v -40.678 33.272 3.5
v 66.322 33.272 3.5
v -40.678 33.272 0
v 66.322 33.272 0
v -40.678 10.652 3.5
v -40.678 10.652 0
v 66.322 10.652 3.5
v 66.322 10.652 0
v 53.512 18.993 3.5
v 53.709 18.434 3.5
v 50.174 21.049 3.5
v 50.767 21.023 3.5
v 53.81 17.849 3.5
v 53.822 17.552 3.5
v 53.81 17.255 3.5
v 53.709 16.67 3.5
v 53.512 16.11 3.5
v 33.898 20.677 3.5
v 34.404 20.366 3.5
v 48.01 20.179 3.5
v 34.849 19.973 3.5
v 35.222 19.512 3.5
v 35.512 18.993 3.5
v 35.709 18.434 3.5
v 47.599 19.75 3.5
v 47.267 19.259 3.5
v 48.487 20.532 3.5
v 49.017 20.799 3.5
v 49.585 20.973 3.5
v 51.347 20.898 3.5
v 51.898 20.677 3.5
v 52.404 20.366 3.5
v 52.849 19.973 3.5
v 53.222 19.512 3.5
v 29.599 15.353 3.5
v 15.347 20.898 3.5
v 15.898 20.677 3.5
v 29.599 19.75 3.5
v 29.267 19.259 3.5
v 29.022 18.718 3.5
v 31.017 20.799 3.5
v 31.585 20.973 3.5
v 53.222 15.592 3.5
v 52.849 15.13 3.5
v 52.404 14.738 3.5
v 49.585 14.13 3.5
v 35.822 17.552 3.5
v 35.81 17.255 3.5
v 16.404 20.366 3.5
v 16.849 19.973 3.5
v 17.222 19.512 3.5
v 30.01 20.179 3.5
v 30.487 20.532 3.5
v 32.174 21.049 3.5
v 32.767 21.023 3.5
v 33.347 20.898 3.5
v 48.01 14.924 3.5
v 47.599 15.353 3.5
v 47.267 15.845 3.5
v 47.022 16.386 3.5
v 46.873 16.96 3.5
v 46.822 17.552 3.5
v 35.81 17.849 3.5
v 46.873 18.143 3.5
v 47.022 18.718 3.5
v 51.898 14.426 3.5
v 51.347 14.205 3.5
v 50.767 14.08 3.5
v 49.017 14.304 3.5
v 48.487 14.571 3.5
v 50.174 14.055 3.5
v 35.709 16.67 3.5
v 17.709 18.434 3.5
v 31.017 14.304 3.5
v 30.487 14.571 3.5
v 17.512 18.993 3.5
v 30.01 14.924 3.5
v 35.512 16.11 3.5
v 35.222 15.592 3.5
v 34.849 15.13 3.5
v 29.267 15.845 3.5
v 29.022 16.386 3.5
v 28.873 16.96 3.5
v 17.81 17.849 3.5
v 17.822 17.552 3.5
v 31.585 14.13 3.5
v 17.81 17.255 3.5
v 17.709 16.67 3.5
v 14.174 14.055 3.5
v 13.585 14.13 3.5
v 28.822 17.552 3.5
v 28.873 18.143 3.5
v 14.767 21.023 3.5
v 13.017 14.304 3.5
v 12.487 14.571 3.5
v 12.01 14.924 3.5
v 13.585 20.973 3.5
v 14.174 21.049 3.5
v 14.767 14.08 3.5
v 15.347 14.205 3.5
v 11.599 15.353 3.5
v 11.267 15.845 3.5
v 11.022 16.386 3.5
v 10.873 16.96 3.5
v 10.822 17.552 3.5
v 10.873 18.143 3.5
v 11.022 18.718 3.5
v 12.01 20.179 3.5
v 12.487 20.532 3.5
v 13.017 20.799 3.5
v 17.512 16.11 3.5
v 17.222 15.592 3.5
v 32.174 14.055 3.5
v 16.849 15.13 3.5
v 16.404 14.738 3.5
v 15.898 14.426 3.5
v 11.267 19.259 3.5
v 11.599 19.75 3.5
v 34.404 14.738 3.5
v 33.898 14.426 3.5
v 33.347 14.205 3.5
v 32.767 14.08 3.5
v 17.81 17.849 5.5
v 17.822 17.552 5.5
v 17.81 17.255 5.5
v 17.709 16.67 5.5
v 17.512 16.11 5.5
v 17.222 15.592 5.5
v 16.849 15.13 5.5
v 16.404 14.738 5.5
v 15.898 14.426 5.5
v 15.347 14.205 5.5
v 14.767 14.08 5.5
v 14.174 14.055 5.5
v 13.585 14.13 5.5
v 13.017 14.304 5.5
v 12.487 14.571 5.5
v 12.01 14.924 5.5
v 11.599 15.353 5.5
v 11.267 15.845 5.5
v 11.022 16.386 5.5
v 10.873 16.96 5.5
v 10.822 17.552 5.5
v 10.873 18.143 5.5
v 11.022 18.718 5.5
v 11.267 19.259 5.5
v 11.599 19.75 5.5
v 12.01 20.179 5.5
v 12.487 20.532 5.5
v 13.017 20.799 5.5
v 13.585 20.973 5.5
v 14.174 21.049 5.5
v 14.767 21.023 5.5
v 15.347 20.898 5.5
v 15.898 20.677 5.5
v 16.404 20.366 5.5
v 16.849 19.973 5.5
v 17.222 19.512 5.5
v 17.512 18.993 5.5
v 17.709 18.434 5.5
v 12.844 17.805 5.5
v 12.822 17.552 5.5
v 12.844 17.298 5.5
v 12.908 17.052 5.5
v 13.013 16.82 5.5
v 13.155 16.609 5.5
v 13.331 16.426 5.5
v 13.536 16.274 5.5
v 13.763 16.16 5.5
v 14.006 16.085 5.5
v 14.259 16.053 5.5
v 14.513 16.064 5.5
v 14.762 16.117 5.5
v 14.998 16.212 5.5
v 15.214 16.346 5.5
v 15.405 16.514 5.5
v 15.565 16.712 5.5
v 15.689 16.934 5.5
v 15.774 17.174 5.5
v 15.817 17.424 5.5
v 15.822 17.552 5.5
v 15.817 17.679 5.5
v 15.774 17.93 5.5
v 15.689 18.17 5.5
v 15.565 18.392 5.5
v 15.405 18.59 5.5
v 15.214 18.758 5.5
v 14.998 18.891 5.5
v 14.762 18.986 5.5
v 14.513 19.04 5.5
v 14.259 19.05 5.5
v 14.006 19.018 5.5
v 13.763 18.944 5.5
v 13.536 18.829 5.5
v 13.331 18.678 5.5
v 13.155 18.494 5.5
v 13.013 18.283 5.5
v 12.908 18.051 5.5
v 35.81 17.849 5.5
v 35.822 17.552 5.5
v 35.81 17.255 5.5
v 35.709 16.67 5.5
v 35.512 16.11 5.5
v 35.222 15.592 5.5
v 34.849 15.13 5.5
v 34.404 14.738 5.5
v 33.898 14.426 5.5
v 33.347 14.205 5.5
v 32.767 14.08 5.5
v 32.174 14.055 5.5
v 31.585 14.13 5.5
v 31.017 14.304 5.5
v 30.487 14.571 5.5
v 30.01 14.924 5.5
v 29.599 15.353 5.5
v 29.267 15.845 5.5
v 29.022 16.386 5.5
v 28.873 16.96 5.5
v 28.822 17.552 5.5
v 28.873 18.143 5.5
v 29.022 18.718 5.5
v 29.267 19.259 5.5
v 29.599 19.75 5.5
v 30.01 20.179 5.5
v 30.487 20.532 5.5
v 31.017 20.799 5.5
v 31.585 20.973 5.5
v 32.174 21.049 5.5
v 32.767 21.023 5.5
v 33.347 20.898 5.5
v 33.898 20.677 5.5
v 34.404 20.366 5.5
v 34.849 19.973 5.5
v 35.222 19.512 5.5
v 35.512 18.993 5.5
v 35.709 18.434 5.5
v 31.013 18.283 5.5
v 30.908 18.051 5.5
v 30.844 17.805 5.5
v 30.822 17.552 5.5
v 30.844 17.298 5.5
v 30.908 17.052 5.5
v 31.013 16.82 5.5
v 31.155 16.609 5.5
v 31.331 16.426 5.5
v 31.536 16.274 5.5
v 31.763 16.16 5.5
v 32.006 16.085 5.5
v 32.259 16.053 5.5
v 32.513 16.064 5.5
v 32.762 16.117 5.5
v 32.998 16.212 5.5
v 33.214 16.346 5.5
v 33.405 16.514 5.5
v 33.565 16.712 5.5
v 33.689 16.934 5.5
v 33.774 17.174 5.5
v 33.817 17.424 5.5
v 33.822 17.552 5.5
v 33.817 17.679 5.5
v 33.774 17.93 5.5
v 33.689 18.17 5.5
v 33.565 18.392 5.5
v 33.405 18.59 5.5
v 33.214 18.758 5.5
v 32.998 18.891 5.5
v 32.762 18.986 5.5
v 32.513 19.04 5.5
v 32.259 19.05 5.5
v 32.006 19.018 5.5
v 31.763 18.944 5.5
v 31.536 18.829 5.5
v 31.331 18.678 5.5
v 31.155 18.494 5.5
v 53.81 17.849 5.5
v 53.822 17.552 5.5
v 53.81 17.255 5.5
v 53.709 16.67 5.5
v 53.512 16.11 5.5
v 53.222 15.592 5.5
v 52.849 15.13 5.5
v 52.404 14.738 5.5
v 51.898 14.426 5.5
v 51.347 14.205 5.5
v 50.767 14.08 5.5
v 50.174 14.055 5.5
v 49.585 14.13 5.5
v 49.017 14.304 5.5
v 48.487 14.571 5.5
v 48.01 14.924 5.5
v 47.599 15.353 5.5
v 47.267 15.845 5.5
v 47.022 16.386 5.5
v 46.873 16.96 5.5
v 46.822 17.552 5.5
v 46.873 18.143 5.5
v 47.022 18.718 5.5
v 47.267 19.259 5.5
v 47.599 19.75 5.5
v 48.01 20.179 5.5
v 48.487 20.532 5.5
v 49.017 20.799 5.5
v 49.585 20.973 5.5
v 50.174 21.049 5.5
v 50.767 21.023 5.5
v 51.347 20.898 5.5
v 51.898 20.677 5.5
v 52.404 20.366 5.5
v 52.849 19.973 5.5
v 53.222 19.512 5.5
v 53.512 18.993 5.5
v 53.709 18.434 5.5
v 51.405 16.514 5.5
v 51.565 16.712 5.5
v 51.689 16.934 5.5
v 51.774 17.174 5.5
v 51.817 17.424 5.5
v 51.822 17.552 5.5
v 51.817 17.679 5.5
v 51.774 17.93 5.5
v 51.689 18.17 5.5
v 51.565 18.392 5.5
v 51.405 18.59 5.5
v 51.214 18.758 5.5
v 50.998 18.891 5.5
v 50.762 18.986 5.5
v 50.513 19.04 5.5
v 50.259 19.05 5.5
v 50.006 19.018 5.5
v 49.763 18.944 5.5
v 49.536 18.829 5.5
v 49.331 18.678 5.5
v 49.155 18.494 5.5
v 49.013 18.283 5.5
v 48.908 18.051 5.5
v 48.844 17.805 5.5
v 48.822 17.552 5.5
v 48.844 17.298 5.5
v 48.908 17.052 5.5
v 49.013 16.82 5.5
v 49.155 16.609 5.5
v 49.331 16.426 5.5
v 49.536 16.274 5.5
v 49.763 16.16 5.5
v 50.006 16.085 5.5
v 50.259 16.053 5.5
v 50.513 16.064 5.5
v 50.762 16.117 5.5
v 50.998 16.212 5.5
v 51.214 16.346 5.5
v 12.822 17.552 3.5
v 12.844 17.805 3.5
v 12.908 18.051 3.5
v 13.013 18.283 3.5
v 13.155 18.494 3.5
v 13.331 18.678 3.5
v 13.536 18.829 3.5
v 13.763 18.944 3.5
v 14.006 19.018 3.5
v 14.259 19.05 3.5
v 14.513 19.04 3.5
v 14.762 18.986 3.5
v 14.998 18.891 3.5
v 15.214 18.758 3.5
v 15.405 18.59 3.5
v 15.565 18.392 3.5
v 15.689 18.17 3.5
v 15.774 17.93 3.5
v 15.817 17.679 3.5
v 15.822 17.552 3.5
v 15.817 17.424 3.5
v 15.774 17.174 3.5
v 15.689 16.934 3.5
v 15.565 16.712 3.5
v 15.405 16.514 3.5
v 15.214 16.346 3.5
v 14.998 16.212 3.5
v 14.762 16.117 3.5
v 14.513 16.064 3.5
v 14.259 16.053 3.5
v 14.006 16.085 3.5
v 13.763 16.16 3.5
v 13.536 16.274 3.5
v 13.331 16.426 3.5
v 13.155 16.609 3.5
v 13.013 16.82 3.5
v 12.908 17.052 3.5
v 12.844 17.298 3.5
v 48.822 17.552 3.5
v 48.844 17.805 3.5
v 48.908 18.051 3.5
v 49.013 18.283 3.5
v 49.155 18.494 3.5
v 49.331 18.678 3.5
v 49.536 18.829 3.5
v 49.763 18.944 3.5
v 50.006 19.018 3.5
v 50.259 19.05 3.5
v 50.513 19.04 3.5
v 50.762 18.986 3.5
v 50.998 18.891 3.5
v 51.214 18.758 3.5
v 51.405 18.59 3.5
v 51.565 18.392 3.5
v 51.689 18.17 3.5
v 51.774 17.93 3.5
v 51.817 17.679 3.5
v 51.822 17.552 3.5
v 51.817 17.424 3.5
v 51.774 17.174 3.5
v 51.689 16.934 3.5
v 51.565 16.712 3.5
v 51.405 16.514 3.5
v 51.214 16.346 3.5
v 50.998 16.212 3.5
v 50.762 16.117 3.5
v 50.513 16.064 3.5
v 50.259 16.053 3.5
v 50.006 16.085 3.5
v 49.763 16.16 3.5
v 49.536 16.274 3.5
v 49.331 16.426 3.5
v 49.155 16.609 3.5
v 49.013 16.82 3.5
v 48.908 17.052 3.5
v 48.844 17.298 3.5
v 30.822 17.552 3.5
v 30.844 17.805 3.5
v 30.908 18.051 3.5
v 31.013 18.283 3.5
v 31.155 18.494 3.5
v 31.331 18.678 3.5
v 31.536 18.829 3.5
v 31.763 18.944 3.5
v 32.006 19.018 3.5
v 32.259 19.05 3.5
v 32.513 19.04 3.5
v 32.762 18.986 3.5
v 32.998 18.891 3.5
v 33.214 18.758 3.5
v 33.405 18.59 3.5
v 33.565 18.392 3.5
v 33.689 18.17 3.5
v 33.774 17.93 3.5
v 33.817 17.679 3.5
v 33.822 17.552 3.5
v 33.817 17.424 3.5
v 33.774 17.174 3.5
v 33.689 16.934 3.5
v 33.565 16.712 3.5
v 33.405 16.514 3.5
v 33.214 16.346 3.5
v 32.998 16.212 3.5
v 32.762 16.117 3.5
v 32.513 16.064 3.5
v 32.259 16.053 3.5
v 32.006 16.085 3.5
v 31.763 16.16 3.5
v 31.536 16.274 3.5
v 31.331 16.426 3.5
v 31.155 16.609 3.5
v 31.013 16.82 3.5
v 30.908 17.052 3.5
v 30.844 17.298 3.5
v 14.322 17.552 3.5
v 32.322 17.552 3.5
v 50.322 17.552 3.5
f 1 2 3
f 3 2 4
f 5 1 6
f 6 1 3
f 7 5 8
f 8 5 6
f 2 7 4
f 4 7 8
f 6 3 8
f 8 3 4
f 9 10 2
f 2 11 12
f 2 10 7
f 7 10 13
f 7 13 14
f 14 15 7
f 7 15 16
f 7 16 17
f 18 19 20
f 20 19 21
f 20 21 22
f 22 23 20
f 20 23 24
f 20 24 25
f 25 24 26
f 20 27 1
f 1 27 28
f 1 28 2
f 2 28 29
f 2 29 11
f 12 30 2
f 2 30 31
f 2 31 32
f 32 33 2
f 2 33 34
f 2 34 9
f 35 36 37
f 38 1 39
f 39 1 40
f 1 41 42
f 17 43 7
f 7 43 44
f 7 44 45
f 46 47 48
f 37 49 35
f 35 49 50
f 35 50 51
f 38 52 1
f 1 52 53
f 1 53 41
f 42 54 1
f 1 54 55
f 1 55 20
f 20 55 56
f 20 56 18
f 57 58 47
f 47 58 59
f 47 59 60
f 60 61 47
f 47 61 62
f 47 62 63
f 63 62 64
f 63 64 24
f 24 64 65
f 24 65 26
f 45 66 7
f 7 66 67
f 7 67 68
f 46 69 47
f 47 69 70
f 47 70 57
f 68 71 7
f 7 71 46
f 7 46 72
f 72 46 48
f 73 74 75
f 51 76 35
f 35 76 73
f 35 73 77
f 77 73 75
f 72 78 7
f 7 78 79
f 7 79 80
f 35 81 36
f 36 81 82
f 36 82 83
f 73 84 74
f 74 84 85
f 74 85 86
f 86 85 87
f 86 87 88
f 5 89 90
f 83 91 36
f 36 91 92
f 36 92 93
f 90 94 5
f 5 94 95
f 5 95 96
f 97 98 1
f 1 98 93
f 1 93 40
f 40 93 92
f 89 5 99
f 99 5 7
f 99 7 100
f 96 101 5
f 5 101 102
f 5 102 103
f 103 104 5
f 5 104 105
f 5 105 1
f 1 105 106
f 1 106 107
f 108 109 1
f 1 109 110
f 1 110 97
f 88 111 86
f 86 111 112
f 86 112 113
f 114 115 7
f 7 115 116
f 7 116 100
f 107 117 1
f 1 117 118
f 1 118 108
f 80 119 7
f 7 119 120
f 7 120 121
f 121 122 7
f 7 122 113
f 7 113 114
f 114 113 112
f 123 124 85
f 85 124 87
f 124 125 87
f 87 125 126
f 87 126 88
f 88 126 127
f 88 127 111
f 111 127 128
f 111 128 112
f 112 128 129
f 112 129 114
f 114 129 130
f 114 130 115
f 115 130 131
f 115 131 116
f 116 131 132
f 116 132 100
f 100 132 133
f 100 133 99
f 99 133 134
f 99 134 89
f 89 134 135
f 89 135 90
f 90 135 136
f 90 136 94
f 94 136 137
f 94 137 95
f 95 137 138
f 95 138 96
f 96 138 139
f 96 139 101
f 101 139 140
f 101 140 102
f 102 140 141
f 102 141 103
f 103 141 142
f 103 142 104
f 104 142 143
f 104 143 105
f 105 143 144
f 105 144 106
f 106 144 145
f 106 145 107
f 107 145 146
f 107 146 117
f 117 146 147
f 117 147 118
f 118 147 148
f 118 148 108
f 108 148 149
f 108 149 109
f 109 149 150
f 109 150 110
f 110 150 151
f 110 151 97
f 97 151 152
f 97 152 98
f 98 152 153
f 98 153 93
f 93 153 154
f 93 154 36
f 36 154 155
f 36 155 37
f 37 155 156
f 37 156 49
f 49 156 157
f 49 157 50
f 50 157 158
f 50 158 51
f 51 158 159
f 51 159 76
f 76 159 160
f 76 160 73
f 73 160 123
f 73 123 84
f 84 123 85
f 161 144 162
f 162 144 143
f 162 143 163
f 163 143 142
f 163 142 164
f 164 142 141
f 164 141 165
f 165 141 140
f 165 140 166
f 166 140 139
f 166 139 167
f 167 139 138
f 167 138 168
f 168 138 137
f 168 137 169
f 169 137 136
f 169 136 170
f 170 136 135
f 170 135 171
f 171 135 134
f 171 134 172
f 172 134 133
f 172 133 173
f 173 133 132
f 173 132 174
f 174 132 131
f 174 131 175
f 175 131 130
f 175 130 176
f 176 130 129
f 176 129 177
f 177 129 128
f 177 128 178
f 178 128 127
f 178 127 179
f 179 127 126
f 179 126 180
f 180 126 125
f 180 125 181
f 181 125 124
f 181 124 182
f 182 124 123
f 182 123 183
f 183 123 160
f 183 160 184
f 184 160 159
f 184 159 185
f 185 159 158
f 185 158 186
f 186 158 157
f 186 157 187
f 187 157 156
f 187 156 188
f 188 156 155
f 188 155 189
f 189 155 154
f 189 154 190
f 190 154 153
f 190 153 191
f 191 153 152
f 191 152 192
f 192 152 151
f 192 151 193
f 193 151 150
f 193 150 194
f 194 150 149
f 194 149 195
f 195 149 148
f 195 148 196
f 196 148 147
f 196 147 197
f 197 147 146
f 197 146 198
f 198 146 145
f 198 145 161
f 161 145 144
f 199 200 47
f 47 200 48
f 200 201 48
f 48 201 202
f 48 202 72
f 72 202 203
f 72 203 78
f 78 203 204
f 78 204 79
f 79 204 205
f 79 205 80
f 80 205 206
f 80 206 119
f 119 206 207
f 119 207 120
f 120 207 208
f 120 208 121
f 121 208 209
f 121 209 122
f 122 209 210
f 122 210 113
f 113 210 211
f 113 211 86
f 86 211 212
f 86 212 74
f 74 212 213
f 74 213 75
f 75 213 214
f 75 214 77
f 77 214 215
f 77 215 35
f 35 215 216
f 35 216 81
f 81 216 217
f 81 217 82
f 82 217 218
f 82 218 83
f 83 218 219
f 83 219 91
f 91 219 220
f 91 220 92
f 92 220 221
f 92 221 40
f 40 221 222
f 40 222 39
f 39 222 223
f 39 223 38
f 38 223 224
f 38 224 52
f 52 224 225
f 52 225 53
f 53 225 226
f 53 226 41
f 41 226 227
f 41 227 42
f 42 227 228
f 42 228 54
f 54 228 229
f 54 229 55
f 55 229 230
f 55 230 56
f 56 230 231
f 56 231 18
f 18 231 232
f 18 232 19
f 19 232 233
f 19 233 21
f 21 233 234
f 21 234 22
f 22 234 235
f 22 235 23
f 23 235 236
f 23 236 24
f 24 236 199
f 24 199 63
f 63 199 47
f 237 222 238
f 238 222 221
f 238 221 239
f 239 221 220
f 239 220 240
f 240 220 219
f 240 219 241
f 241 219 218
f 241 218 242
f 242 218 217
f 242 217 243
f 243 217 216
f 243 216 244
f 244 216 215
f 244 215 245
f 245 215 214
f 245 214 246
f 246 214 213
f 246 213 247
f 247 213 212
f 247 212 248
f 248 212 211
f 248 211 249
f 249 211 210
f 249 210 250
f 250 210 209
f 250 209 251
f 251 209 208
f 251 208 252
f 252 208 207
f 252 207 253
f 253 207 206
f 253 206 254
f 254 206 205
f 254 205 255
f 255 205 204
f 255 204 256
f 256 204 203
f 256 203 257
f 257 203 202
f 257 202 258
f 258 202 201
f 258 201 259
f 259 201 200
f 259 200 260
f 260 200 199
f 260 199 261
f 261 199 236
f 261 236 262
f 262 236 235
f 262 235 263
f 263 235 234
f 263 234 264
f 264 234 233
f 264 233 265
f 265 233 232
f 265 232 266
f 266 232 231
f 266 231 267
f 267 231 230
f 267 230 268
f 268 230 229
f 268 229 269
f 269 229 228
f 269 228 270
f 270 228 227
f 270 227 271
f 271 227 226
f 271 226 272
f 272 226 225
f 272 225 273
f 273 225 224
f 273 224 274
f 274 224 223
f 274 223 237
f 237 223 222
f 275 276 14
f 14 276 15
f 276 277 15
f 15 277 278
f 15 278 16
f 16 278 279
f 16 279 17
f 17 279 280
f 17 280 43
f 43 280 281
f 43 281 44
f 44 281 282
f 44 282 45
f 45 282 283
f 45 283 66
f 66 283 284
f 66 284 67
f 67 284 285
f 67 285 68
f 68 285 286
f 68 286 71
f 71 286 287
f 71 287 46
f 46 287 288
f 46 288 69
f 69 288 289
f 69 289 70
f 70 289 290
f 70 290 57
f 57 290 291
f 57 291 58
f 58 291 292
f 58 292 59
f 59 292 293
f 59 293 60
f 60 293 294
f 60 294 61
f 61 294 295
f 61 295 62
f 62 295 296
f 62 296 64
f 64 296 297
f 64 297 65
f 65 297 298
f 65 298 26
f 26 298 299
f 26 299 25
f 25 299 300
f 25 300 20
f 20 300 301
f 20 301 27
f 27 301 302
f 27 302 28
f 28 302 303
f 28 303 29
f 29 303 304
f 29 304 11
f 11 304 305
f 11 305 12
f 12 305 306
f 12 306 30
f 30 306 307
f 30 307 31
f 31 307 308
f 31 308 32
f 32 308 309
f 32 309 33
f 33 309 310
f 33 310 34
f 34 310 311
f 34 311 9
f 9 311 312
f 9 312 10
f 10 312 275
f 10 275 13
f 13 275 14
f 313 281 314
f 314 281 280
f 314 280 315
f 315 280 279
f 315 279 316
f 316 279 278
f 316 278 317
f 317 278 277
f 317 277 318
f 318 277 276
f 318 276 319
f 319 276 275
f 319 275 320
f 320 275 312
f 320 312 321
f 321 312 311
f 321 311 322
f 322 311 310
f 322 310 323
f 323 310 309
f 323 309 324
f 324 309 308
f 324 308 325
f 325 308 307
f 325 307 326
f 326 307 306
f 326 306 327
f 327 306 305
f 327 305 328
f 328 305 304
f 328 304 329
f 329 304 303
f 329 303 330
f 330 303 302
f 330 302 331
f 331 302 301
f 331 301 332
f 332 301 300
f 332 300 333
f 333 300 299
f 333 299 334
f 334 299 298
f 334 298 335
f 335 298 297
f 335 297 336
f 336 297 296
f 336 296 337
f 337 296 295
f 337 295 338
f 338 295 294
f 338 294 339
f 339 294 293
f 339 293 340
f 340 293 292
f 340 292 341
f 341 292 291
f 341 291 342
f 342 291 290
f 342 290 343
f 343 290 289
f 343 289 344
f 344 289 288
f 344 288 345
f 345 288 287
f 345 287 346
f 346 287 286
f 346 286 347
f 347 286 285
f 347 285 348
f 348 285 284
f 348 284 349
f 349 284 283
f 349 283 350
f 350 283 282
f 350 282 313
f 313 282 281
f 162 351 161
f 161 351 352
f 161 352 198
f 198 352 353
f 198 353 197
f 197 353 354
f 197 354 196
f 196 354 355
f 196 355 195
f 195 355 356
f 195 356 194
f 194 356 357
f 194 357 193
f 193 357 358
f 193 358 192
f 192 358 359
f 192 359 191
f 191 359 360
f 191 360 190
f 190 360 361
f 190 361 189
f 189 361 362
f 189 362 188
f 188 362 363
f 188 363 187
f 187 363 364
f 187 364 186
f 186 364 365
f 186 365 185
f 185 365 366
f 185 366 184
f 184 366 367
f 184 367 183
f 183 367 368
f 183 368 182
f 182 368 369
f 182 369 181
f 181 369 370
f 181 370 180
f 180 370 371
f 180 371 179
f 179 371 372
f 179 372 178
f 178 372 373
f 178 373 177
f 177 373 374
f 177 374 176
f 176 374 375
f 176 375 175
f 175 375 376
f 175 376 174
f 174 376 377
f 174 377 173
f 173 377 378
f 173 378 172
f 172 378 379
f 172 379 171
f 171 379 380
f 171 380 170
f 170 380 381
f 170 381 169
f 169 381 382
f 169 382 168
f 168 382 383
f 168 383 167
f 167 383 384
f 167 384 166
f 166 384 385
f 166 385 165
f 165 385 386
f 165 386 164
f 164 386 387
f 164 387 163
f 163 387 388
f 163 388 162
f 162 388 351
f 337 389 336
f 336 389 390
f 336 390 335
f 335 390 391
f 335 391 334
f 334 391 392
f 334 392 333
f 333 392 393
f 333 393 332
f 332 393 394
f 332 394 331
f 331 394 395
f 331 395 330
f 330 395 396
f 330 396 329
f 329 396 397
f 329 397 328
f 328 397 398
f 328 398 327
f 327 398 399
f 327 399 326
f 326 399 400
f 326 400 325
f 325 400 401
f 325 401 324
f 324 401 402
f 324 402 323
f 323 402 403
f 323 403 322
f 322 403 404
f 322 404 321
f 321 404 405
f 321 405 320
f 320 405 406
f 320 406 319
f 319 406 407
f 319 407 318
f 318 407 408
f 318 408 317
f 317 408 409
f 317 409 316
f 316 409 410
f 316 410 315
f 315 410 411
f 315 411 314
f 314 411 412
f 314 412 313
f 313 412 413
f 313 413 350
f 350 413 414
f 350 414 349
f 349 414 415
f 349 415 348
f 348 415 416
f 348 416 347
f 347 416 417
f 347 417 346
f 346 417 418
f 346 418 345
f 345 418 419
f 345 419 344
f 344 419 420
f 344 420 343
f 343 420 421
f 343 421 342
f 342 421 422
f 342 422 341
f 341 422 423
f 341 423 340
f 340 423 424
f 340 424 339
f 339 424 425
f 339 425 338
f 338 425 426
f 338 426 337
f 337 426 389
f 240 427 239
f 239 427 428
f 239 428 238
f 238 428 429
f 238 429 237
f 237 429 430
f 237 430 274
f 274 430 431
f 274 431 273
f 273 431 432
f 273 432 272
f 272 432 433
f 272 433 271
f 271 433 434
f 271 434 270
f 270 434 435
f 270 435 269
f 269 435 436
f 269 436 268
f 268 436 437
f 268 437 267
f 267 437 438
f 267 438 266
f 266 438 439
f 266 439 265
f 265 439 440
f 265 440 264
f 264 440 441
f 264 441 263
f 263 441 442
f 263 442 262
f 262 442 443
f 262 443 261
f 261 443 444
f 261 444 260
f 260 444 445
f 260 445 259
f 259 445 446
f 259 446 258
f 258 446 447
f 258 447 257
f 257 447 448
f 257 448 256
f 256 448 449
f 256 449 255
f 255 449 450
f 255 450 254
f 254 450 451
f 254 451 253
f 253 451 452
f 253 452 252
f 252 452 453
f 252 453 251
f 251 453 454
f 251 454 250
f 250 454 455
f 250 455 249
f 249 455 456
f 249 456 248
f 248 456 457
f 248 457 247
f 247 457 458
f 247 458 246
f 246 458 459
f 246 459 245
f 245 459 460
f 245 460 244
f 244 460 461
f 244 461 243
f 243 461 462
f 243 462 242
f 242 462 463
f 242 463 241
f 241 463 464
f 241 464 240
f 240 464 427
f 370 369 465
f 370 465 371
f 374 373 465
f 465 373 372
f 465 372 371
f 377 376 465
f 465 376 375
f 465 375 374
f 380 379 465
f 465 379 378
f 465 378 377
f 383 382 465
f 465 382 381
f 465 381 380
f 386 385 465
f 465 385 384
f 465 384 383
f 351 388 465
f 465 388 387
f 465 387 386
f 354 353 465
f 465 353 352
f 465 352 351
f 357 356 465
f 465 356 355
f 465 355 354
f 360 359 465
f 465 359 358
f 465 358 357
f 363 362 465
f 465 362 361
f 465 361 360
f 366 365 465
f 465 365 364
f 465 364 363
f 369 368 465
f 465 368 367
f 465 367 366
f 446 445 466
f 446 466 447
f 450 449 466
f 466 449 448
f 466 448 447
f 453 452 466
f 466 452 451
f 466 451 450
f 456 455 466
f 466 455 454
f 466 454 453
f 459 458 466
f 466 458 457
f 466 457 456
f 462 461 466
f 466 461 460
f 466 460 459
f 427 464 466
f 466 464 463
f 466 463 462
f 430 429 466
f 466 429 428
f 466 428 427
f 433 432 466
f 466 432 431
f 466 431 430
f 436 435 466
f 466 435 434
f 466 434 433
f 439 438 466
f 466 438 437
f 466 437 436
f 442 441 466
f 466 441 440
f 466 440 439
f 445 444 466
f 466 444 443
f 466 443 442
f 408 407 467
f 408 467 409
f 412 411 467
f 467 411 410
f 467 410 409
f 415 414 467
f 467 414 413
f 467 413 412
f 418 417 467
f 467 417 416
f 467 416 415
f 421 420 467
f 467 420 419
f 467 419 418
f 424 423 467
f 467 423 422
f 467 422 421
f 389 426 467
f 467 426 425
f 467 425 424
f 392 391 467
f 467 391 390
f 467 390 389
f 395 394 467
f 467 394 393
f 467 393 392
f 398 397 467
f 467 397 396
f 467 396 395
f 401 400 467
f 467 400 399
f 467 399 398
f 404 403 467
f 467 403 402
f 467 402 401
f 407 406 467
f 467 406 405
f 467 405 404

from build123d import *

# Parameters (mm, degrees)
ESBO_O1_W                = 107
ESBO_O1_H                = 22.62
RESSALTO_EXTRUS_O1_DEPTH = 3.5
ESBO_O1_4_R              = 3.5
RESSALTO_EXTRUS_O2_DEPTH = 5.5
ESBO_O1_7_R              = 1.5
CORTE_EXTRUS_O1_DEPTH    = 5.5
ESBO_O1_9_R              = 1.5
RESSALTO_EXTRUS_O4_DEPTH = 3.5


with BuildPart() as part:
    # Esboço1 → Ressalto-extrusão1 (new body)
    with BuildSketch(Plane.XY):
        with Locations((12.82231405, 21.961694215)):
            Rectangle(ESBO_O1_W, ESBO_O1_H)
    extrude(amount=RESSALTO_EXTRUS_O1_DEPTH)

    # Esboço1<4> → Ressalto-extrusão2 (add)
    with BuildSketch(Plane.XY):
        with Locations((14.32231405, 17.551694215)):
            Circle(ESBO_O1_4_R)
        with Locations((32.32231405, 17.551694215)):
            Circle(ESBO_O1_4_R)
        with Locations((50.32231405, 17.551694215)):
            Circle(ESBO_O1_4_R)
    extrude(amount=RESSALTO_EXTRUS_O2_DEPTH)

    # Esboço1<7> → Corte-extrusão1 (cut)
    with BuildSketch(Plane.XY):
        with Locations((14.32231405, 17.551694215)):
            Circle(ESBO_O1_7_R)
        with Locations((32.32231405, 17.551694215)):
            Circle(ESBO_O1_7_R)
        with Locations((50.32231405, 17.551694215)):
            Circle(ESBO_O1_7_R)
    extrude(amount=CORTE_EXTRUS_O1_DEPTH, mode=Mode.SUBTRACT)

    # Esboço1<9> → Ressalto-extrusão4 (add)
    with BuildSketch(Plane.XY):
        with Locations((14.32231405, 17.551694215)):
            Circle(ESBO_O1_9_R)
        with Locations((32.32231405, 17.551694215)):
            Circle(ESBO_O1_9_R)
        with Locations((50.32231405, 17.551694215)):
            Circle(ESBO_O1_9_R)
    extrude(amount=RESSALTO_EXTRUS_O4_DEPTH)


solid = part.part
